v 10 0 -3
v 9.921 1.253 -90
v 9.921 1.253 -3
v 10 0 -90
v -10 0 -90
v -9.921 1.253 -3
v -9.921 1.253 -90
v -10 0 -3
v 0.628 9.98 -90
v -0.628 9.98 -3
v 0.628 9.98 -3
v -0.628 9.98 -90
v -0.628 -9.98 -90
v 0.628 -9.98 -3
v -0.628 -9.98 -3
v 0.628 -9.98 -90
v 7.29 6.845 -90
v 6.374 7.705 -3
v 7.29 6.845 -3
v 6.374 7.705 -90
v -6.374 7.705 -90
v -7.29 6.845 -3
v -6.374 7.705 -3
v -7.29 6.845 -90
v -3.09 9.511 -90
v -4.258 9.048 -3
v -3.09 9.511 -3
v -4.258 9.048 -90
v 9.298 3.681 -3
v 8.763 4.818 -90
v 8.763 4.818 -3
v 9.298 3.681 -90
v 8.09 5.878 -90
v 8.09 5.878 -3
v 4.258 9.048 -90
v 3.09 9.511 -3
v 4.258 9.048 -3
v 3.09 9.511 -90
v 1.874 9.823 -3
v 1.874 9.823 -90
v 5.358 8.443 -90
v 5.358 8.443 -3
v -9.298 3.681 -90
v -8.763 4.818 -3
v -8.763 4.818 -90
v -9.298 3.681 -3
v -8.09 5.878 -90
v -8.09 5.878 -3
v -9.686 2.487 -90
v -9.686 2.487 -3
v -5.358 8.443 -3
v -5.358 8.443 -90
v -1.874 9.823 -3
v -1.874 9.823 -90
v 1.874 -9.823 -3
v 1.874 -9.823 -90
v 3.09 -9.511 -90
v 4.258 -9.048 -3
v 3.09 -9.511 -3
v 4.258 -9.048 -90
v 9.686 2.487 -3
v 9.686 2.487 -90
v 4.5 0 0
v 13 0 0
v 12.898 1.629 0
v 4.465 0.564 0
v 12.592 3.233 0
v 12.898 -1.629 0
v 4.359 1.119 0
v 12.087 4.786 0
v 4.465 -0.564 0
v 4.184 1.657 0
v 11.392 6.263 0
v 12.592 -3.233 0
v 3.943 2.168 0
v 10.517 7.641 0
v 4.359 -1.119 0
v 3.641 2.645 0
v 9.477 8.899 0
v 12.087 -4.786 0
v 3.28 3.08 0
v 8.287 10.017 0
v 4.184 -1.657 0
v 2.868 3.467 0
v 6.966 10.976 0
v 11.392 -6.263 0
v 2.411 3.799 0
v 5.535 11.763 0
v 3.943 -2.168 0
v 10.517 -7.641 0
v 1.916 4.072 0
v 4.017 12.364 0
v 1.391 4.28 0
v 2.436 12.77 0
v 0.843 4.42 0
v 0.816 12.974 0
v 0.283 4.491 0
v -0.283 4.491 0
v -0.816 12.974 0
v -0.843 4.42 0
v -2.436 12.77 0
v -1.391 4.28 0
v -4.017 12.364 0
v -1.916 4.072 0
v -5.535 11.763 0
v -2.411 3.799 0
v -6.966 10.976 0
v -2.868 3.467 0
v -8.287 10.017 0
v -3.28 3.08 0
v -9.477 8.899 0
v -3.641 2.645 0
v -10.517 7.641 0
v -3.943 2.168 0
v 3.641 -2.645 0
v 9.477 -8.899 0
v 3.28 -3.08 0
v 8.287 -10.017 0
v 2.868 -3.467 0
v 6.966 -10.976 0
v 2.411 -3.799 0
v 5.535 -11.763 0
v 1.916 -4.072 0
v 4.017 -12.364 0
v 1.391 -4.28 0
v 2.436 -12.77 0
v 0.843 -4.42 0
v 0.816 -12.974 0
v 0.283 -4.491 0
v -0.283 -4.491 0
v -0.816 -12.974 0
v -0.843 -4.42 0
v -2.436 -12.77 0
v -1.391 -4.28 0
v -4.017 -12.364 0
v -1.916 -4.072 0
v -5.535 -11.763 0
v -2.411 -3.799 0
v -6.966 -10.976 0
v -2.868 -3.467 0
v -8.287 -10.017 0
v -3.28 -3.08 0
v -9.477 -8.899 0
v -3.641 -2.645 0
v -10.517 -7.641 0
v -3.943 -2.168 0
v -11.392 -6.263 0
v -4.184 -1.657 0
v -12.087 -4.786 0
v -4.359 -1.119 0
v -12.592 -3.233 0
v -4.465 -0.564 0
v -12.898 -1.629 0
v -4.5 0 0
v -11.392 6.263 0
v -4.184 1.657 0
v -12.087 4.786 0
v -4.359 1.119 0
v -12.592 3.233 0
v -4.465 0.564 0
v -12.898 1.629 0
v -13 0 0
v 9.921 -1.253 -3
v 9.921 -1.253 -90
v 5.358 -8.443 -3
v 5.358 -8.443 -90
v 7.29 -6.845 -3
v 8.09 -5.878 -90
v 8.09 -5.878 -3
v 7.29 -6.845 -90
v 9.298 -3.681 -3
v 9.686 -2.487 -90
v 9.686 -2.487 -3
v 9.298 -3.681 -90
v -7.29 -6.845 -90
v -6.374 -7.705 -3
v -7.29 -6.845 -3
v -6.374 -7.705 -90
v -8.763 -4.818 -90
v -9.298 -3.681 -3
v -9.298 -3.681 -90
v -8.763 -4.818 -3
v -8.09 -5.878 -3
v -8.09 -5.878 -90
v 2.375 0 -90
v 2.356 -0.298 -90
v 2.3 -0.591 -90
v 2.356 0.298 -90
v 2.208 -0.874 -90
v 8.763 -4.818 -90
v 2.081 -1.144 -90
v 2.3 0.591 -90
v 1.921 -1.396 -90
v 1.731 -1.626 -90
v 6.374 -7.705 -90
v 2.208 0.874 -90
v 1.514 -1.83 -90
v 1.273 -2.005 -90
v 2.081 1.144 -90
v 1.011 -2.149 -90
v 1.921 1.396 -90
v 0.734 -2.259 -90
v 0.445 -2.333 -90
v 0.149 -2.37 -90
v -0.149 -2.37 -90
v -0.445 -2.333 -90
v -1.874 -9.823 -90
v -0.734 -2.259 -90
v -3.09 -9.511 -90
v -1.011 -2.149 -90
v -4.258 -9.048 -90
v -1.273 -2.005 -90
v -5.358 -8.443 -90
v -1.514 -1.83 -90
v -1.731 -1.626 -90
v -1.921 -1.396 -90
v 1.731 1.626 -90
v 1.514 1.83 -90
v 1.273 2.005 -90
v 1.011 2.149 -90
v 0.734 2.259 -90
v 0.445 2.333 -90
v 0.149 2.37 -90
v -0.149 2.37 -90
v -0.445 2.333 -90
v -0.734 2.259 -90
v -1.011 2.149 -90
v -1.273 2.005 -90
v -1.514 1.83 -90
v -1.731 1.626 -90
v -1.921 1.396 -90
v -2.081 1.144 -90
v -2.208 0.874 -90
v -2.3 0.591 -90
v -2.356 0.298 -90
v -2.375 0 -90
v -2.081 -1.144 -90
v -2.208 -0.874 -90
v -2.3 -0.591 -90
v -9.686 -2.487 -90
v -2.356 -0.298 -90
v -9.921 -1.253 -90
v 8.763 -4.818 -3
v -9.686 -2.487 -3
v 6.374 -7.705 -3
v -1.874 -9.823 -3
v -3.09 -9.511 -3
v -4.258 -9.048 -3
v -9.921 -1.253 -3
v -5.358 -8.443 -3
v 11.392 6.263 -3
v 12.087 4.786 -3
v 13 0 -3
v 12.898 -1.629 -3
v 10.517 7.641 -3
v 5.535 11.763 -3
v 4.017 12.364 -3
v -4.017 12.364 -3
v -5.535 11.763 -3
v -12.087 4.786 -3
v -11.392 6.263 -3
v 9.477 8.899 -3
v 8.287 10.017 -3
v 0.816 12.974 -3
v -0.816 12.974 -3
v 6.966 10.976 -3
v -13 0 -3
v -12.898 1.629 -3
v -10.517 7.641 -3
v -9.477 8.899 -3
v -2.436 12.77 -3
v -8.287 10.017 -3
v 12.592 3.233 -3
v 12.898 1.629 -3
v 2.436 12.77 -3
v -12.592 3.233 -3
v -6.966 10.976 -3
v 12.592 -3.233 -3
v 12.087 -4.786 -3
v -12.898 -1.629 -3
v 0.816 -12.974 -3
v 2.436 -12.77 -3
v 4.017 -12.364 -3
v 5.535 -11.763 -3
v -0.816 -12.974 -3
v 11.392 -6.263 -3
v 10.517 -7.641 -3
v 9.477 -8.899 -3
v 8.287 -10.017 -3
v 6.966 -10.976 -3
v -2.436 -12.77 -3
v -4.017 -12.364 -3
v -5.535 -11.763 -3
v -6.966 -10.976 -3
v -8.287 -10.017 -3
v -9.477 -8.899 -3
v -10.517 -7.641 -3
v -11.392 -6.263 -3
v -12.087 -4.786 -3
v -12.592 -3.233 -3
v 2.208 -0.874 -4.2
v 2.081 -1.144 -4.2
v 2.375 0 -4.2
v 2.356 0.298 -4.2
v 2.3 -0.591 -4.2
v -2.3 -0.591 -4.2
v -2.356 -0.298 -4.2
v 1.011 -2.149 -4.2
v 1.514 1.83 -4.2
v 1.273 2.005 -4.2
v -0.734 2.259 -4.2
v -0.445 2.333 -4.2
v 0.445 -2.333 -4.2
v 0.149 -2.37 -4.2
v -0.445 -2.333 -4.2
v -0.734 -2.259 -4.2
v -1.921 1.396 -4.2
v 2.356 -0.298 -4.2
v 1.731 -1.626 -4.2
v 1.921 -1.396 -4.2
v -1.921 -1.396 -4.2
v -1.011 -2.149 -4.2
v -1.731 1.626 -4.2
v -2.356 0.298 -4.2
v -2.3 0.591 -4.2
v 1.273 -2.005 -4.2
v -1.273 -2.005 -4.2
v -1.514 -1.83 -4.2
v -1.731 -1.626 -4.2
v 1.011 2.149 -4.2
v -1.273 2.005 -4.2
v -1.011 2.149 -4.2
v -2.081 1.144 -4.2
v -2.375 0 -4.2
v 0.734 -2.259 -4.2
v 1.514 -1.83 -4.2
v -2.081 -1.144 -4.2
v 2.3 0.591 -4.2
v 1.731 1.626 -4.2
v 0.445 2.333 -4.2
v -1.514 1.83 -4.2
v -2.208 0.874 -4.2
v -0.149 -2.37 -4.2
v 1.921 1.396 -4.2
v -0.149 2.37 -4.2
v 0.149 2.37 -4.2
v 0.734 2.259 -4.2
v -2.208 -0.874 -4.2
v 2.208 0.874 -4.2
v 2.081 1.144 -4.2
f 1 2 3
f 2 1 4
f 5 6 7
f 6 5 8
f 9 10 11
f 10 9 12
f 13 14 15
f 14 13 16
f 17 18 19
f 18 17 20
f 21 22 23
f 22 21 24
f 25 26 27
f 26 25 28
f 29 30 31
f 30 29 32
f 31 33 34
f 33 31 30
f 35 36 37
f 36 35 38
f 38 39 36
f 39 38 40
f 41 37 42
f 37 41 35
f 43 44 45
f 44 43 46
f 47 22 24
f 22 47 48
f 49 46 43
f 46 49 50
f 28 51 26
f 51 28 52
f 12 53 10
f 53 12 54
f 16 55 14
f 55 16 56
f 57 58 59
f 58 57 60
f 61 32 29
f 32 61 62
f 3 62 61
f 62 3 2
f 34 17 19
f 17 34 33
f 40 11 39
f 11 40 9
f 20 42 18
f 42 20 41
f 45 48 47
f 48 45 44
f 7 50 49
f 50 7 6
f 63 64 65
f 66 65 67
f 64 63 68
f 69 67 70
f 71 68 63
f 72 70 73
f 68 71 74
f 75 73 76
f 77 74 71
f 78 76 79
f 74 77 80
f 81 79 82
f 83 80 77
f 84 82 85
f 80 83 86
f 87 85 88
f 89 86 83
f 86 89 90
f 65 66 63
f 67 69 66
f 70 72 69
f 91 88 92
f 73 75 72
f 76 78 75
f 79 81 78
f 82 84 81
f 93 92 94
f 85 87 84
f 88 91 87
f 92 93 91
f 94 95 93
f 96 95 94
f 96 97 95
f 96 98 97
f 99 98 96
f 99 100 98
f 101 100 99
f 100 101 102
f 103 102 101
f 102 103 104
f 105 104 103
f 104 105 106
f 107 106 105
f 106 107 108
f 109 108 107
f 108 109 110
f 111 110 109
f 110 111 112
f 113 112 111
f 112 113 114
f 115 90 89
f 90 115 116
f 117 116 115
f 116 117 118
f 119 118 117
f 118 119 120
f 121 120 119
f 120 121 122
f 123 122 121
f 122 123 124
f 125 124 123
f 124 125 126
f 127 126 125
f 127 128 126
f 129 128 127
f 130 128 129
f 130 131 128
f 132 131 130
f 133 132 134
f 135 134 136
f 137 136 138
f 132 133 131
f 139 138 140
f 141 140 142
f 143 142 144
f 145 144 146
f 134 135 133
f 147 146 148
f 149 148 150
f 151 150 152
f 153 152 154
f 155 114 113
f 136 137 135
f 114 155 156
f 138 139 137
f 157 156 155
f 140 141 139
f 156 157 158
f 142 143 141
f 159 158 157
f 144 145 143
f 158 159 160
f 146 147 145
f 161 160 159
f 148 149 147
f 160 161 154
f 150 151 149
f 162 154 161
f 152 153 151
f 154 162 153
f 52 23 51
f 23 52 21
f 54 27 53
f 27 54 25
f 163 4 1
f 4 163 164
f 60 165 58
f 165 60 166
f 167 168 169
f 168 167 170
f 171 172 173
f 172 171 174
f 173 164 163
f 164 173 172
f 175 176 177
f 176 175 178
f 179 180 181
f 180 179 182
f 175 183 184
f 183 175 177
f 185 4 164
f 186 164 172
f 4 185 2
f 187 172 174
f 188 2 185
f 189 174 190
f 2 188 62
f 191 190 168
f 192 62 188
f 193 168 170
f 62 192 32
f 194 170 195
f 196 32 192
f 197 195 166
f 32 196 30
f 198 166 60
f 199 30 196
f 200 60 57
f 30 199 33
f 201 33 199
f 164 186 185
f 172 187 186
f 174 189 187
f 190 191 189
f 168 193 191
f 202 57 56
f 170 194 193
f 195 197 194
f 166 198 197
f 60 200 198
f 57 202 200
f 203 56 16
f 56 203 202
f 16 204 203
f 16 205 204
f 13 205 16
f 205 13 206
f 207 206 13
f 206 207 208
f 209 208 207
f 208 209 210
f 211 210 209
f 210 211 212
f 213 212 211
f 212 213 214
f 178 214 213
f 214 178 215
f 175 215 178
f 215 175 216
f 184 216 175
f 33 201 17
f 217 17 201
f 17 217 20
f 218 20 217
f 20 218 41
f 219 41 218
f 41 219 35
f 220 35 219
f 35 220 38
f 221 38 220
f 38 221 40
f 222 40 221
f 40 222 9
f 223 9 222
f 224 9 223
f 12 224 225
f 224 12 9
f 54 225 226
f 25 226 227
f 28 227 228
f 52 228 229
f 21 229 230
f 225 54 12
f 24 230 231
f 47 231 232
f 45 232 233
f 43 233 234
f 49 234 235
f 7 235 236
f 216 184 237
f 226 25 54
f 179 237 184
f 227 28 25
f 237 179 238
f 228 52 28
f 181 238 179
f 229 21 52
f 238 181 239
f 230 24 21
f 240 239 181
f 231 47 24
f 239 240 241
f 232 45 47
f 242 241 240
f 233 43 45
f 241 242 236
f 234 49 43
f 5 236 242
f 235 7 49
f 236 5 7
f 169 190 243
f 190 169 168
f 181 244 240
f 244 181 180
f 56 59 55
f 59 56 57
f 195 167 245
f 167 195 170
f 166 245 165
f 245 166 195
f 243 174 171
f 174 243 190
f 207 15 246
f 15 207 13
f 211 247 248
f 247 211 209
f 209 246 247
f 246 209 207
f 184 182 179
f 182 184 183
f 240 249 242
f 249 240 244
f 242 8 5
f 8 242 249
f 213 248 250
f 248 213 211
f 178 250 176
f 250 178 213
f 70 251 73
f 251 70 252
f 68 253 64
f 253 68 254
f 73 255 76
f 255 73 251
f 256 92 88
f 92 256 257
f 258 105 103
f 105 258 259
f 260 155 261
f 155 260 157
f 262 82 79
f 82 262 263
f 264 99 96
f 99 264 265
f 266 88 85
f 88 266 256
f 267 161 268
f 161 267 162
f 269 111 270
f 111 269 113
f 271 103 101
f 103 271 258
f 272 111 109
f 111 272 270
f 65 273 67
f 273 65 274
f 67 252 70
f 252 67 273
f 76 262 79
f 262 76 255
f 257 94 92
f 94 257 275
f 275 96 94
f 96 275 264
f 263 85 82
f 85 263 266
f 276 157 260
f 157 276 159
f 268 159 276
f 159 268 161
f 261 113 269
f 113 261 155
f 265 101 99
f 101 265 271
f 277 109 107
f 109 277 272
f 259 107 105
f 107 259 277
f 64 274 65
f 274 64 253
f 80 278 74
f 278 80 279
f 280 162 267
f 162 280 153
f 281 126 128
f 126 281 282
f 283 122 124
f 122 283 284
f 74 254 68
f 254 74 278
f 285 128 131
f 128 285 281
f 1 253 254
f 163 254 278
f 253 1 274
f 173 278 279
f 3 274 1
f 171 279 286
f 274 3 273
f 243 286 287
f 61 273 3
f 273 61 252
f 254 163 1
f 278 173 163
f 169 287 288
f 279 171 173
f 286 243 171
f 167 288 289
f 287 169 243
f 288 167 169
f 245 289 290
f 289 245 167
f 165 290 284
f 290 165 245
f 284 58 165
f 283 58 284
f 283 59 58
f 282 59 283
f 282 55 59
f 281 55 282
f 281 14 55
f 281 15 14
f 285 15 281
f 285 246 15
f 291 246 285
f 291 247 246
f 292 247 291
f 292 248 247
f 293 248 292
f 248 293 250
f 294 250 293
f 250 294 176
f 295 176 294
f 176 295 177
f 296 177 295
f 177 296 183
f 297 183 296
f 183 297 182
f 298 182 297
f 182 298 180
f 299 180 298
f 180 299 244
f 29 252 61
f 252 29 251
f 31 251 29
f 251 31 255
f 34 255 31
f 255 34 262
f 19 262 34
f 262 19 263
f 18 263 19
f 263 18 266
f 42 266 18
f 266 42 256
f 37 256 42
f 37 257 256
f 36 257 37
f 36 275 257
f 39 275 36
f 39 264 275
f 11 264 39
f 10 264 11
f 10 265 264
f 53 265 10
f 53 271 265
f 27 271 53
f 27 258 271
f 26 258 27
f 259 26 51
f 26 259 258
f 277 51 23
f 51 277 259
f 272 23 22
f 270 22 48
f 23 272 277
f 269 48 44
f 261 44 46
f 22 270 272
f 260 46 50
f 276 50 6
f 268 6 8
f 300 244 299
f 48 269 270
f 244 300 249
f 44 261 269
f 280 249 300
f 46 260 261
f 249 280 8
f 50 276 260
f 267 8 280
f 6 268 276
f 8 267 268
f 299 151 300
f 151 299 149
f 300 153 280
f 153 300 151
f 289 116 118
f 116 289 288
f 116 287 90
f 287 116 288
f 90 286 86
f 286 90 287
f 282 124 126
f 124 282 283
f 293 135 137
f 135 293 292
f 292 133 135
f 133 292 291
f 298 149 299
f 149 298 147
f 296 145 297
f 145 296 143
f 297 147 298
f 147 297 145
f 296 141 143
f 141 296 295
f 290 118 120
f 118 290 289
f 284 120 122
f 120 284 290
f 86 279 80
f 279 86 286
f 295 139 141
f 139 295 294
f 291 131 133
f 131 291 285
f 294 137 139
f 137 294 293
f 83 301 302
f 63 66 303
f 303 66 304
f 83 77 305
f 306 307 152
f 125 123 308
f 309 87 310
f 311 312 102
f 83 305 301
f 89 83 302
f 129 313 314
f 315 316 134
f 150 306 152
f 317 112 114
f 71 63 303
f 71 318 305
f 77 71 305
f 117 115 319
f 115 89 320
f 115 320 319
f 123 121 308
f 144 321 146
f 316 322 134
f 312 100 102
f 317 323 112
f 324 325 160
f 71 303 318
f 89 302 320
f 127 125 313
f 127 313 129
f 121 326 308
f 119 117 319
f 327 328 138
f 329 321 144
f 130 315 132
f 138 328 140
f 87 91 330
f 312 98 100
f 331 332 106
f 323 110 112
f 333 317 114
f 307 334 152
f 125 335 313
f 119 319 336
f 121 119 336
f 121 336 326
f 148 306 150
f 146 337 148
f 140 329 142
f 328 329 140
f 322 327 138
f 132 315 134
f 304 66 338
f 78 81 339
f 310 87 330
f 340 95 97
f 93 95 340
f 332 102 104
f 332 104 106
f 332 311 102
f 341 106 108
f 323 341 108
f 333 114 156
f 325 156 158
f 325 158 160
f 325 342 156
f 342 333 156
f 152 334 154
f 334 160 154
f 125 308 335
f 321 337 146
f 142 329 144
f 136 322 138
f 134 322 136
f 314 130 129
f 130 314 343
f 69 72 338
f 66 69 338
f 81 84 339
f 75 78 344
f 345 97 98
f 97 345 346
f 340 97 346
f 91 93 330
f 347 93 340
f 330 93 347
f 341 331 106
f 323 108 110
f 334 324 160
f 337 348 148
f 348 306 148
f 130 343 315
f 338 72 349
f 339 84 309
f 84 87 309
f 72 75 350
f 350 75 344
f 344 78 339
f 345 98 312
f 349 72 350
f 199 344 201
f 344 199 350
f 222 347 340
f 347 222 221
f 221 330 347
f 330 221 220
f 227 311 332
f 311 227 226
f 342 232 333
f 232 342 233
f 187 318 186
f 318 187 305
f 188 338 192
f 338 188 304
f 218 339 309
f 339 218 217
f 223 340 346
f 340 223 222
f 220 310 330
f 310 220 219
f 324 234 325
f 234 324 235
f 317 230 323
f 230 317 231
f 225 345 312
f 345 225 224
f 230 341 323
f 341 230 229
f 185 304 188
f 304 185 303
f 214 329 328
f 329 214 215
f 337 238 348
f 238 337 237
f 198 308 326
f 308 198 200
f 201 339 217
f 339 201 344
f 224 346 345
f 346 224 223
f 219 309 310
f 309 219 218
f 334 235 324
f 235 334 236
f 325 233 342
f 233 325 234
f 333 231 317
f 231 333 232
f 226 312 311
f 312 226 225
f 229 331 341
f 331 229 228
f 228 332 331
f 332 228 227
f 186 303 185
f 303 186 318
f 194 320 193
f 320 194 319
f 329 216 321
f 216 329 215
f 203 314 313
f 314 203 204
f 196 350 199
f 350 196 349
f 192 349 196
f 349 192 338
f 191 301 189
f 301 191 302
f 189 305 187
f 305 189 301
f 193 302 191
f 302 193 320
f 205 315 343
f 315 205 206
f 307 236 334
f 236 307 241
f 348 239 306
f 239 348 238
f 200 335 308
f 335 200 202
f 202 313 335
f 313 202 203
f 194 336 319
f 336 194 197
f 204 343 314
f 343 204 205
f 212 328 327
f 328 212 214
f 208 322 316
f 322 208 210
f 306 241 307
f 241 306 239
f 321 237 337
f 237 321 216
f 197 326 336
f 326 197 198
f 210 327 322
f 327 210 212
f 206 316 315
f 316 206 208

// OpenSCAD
$fn = 50;


difference() {
	union() {
		translate(v = [0, 0, -90.0000000000]) {
			cylinder(h = 90, r = 10.0000000000);
		}
		translate(v = [0, 0, -3.0000000000]) {
			cylinder(h = 3, r = 13.0000000000);
		}
	}
	union() {
		translate(v = [0, 0, 0]) {
			rotate(a = [0, 0, 0]) {
				difference() {
					union() {
						#translate(v = [0, 0, -90.0000000000]) {
							cylinder(h = 90, r = 2.2500000000);
						}
						#translate(v = [0, 0, -4.2000000000]) {
							cylinder(h = 4.2000000000, r = 10.0000000000, r1 = 2.3750000000, r2 = 4.5000000000);
						}
						#translate(v = [0, 0, -90.0000000000]) {
							cylinder(h = 90, r = 2.3750000000);
						}
						#translate(v = [0, 0, -90.0000000000]) {
							cylinder(h = 90, r = 2.2500000000);
						}
					}
					union();
				}
			}
		}
	}
}
